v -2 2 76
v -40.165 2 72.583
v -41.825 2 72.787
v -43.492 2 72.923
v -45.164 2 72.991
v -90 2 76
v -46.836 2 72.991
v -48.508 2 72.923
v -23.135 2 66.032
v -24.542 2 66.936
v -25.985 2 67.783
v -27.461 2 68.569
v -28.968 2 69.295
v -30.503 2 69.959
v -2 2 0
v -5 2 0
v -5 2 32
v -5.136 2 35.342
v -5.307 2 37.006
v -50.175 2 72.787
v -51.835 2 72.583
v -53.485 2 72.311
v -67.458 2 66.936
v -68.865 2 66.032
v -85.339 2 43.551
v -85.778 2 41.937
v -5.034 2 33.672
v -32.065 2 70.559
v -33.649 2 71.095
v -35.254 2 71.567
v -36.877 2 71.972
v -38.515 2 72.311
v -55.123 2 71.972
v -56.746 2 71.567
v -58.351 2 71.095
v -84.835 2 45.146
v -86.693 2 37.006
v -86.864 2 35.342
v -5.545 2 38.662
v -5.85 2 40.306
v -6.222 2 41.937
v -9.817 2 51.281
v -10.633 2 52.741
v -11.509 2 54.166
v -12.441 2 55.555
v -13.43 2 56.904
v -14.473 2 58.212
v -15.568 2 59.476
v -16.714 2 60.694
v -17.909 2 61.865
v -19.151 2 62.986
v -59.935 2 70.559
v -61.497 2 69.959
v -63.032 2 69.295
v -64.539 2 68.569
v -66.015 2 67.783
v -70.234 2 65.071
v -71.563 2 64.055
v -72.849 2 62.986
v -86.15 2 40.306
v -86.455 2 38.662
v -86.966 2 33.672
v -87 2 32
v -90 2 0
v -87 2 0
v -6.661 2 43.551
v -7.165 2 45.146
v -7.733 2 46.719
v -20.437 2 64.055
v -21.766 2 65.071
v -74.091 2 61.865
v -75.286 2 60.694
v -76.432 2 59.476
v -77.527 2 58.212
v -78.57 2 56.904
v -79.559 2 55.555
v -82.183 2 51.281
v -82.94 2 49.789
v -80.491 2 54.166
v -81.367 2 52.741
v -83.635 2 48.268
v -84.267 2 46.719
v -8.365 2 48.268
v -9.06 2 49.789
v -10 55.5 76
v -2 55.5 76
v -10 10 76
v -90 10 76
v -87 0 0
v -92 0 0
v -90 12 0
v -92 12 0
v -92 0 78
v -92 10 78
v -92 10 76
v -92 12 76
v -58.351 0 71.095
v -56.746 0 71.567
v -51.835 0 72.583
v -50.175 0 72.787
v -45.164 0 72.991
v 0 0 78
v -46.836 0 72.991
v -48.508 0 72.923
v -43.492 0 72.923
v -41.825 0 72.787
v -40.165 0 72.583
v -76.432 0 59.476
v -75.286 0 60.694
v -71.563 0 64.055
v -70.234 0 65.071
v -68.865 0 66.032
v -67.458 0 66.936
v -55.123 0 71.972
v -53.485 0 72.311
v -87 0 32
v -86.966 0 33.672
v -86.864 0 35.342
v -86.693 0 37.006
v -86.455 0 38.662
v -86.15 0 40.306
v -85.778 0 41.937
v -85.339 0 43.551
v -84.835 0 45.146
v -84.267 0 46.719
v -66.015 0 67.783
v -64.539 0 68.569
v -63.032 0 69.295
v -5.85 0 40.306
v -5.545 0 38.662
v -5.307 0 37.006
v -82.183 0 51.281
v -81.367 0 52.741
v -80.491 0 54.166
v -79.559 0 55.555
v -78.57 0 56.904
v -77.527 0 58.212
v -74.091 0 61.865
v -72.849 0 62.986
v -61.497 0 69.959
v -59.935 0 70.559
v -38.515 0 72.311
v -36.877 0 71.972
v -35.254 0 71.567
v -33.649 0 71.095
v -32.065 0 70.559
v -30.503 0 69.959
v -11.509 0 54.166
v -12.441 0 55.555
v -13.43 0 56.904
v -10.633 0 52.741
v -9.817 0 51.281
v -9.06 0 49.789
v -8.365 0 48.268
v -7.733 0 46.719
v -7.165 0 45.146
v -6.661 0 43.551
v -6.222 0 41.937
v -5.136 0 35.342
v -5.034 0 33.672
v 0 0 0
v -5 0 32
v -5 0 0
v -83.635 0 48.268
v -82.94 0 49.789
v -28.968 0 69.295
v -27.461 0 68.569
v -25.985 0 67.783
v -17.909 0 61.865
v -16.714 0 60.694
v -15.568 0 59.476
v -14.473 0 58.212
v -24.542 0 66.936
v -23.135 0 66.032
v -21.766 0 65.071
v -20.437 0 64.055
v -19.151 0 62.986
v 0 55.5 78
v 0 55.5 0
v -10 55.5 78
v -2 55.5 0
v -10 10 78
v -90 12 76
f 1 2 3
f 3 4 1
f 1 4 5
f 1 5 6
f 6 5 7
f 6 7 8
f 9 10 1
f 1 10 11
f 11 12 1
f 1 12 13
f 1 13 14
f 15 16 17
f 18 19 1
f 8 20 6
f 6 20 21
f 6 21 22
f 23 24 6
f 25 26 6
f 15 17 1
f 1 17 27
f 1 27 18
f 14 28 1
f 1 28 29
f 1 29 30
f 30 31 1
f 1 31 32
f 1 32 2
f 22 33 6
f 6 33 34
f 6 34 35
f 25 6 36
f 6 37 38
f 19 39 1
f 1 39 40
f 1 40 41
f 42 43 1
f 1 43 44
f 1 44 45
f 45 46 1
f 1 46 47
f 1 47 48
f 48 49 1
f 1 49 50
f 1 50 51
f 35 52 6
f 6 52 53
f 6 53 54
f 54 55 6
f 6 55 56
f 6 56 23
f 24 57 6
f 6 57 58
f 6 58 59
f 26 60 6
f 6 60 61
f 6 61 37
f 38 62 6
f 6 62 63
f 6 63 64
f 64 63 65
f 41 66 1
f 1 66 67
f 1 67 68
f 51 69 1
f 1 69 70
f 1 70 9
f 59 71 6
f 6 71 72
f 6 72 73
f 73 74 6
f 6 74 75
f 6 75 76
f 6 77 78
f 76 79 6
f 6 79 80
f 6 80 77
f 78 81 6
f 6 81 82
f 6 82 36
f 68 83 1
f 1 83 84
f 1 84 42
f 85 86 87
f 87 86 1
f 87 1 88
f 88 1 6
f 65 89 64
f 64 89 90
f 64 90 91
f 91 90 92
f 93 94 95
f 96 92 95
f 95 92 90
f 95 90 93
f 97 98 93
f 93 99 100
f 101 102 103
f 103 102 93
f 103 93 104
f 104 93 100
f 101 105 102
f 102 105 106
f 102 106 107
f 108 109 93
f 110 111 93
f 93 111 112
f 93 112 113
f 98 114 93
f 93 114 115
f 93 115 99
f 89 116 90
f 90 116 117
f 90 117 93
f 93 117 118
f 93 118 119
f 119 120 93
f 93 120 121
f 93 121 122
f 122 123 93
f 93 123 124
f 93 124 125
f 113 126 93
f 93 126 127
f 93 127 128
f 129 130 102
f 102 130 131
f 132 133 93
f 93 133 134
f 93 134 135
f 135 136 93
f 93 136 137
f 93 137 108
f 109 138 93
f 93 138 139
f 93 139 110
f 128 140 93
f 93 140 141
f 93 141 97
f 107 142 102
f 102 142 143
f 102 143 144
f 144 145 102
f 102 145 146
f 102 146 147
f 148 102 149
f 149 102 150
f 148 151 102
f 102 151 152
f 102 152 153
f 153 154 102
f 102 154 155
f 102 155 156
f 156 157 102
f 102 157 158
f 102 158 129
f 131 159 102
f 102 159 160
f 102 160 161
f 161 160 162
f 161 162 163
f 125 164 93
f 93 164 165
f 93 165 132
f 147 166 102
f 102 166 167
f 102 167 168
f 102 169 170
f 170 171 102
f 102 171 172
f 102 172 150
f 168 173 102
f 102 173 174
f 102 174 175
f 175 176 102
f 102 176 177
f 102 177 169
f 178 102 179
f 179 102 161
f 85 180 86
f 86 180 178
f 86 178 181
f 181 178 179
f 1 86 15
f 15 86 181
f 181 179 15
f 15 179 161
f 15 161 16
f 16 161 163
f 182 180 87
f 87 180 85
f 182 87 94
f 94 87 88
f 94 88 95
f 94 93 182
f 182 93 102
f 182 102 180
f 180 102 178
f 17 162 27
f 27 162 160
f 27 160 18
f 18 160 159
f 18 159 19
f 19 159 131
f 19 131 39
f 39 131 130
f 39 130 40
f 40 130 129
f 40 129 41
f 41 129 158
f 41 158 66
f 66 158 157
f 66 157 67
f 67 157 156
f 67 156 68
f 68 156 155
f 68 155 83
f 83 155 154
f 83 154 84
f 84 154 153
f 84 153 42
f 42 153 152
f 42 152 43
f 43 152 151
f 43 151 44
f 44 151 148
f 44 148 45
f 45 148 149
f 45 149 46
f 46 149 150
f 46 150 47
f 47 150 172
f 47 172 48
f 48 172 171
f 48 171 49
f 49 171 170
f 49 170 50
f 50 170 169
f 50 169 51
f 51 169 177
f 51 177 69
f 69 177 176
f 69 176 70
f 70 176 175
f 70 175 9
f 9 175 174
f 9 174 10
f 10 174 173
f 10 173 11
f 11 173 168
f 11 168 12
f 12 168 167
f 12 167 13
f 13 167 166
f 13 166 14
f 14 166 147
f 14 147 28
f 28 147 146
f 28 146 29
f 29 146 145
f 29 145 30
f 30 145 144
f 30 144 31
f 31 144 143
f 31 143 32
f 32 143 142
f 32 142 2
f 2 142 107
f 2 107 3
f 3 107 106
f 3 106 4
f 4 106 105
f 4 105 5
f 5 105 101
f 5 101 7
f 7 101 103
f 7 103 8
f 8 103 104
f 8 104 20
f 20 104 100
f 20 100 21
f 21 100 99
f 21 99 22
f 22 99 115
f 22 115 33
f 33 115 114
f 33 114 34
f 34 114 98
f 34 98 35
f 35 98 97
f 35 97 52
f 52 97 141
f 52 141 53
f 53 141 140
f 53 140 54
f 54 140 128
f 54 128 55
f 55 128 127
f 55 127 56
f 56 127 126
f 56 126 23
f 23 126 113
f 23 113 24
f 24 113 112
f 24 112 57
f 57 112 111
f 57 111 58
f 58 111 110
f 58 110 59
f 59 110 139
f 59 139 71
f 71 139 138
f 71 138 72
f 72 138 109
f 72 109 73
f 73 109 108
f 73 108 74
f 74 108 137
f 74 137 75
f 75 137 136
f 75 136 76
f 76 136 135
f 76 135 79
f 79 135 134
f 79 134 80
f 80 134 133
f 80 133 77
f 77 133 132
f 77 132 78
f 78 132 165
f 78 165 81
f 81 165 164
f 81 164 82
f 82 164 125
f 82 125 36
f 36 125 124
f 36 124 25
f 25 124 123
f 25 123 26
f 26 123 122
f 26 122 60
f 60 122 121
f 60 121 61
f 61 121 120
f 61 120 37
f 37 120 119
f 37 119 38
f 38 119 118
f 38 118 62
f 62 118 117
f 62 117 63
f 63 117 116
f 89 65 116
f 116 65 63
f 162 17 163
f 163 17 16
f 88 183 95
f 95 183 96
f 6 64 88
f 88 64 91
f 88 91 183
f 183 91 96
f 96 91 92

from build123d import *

# Parameters (mm, degrees)
EXTRUDE_1_DEPTH     = 76
EXTRUDE_2_DEPTH     = 2
CUT_EXTRUDE_1_DEPTH = 10
SKETCH_5_W          = 2
SKETCH_5_H          = 76
EXTRUDE_3_DEPTH     = 10


with BuildPart() as part:
    # 草图1 → 凸台-拉伸1 (new body)
    with BuildSketch(Plane.XY):
        Polygon((-92, 0), (0, 0), (0, 55.5), (-2, 55.5), (-2, 2), (-92, 2), align=None)
    extrude(amount=EXTRUDE_1_DEPTH)

    # 草图3 → 凸台-拉伸2 (add)
    with BuildSketch(Plane.XY.offset(76)):
        Polygon((0, 55.5), (-10, 55.5), (-10, 10), (-92, 10), (-92, 0), (0, 0), align=None)
    extrude(amount=EXTRUDE_2_DEPTH)

    # 草图4 → 切除-拉伸1 (cut)
    with BuildSketch(Plane.XZ):
        with BuildLine():
            Line((-87, 0), (-87, 32))
            ThreePointArc((-87, 32), (-46, 73), (-5, 32))
            Line((-5, 32), (-5, 0))
            Line((-5, 0), (-87, 0))
        make_face()
    extrude(amount=-CUT_EXTRUDE_1_DEPTH, mode=Mode.SUBTRACT)

    # 草图5 → 凸台-拉伸3 (add)
    with BuildSketch(Plane(origin=(0, 2, 0), x_dir=(1, 0, 0), z_dir=(0, 1, 0))):
        with Locations((-91, -38)):
            Rectangle(SKETCH_5_W, SKETCH_5_H)
    extrude(amount=EXTRUDE_3_DEPTH)


solid = part.part
